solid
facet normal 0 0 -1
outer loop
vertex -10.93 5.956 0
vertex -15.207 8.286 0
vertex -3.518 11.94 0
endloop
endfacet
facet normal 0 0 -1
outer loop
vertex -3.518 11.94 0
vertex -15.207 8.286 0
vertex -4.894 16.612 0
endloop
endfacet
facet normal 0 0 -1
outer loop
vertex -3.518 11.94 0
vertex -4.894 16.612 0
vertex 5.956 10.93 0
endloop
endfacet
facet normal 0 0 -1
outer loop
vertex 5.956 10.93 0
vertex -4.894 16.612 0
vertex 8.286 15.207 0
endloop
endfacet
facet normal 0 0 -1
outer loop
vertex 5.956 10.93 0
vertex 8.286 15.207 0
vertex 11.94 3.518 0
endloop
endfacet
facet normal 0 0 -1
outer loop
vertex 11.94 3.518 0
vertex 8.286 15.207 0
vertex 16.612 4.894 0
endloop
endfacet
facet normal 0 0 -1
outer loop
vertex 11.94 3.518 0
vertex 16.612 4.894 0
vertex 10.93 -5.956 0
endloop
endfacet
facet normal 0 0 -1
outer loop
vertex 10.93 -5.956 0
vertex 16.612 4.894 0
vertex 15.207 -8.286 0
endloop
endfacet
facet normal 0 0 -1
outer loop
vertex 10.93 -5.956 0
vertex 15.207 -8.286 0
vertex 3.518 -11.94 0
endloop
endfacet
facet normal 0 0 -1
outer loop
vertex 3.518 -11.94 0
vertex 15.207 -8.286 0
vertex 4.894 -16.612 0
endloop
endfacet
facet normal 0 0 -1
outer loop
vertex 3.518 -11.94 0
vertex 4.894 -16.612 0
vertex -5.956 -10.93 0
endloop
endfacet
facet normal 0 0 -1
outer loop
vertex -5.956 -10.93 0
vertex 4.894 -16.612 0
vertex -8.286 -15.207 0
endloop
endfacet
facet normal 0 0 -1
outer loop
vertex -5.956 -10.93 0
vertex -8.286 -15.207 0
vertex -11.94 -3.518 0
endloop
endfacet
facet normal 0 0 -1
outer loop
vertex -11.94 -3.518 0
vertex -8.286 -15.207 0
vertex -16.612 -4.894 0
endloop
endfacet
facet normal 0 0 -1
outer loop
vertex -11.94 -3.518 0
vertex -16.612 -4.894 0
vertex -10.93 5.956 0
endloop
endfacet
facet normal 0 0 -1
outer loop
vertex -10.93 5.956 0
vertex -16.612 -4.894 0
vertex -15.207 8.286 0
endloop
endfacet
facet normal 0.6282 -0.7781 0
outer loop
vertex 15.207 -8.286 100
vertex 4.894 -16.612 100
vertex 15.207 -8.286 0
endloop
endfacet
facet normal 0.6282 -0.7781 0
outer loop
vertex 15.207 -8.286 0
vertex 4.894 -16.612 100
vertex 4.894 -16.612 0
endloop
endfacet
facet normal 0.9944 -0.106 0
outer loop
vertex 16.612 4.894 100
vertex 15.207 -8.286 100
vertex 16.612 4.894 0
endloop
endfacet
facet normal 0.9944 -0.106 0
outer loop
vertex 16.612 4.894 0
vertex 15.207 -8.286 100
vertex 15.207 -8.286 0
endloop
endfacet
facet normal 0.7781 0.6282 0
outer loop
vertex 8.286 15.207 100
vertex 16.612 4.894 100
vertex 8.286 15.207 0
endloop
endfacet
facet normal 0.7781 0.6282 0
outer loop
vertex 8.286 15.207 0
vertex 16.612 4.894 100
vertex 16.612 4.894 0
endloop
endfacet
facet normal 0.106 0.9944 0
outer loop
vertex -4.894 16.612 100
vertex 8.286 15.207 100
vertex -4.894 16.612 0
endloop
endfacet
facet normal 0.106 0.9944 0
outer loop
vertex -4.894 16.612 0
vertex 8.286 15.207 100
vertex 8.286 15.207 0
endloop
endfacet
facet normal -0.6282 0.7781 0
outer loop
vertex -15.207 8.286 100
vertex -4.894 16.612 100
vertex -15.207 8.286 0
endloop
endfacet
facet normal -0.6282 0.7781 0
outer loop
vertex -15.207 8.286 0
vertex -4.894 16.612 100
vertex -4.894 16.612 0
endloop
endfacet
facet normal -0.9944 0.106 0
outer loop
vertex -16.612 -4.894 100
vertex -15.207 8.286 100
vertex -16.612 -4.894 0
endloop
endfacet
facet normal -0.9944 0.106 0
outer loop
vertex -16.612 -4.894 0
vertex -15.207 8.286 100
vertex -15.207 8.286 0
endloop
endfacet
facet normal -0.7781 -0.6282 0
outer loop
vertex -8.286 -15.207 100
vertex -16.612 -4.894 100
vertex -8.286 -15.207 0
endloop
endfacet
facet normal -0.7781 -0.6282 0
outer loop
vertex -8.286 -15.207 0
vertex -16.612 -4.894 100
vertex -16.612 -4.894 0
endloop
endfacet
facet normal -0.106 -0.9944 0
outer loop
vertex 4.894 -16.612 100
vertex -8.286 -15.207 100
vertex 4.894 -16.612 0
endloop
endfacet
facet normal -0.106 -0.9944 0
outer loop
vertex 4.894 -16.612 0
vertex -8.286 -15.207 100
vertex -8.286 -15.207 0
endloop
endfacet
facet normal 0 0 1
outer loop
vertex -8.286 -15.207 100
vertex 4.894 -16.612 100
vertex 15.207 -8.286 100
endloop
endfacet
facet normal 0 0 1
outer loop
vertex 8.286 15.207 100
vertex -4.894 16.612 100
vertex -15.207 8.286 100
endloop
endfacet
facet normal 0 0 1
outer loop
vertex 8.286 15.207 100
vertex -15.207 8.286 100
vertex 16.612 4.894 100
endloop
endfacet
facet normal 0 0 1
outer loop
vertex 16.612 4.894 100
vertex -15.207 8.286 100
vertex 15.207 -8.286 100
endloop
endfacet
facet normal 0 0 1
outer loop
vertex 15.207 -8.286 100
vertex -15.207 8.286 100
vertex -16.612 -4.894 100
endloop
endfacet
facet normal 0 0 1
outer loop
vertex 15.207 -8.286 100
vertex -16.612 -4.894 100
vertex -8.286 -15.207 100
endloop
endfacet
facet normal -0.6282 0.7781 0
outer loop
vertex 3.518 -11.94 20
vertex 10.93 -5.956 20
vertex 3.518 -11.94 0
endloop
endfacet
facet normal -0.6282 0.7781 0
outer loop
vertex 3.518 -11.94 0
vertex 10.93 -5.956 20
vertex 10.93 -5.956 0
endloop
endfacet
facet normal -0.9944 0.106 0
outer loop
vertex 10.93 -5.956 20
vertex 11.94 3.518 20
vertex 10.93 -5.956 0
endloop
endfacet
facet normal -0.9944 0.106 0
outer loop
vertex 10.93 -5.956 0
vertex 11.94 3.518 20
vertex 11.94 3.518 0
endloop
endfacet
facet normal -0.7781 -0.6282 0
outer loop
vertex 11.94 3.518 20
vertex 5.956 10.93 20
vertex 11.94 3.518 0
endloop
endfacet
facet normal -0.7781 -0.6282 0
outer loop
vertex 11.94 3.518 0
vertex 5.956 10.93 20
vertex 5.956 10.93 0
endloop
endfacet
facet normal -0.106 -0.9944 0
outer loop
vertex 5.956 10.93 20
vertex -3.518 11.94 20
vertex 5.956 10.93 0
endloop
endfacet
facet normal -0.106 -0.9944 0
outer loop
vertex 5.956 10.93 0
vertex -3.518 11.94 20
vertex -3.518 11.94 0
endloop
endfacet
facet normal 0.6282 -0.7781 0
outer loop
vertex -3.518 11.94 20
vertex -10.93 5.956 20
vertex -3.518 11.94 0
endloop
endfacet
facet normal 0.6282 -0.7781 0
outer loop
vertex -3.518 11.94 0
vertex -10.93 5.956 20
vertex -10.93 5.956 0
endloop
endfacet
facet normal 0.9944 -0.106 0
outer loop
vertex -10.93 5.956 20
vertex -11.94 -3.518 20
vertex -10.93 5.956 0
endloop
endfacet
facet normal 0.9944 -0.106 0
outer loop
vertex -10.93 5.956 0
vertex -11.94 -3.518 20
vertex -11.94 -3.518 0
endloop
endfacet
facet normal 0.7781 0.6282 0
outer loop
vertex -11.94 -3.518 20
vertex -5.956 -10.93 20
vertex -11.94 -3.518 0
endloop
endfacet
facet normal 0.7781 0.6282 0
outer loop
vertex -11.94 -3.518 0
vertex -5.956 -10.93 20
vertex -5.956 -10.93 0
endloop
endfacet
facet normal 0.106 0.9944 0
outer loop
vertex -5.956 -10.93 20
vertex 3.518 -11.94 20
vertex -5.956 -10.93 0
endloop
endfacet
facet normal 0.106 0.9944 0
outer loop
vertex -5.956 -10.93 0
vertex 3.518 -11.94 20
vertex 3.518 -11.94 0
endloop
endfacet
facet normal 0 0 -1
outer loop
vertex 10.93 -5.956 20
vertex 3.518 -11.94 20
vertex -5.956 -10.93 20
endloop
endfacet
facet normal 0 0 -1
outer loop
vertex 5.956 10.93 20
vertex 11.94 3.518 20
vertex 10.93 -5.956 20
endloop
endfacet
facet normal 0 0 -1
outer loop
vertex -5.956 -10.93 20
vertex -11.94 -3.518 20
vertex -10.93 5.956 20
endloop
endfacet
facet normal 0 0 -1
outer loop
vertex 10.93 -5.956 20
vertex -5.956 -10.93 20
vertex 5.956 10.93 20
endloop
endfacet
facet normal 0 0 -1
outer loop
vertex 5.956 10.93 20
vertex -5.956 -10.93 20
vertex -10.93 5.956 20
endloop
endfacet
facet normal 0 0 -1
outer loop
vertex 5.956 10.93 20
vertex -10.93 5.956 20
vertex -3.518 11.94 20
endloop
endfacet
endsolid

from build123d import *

# Parameters (mm, degrees)
RESSALTO_EXTRUS_O1_DEPTH = 100
CORTE_EXTRUS_O1_DEPTH    = 20


with BuildPart() as part:
    # Esboço2 → Ressalto-extrusão1 (new body)
    with BuildSketch(Plane.XY):
        Polygon((15.207285045, -8.286201641), (16.612403749, 4.893945008), (8.286201641, 15.207285045), (-4.893945008, 16.612403749), (-15.207285045, 8.286201641), (-16.612403749, -4.893945008), (-8.286201641, -15.207285045), (4.893945008, -16.612403749), align=None)
    extrude(amount=RESSALTO_EXTRUS_O1_DEPTH)

    # Esboço1 → Corte-extrusão1 (cut)
    with BuildSketch(Plane.XY):
        Polygon((10.930236126, -5.95570743), (11.940165195, 3.517522974), (5.95570743, 10.930236126), (-3.517522974, 11.940165195), (-10.930236126, 5.95570743), (-11.940165195, -3.517522974), (-5.95570743, -10.930236126), (3.517522974, -11.940165195), align=None)
    extrude(amount=CORTE_EXTRUS_O1_DEPTH, mode=Mode.SUBTRACT)


solid = part.part
